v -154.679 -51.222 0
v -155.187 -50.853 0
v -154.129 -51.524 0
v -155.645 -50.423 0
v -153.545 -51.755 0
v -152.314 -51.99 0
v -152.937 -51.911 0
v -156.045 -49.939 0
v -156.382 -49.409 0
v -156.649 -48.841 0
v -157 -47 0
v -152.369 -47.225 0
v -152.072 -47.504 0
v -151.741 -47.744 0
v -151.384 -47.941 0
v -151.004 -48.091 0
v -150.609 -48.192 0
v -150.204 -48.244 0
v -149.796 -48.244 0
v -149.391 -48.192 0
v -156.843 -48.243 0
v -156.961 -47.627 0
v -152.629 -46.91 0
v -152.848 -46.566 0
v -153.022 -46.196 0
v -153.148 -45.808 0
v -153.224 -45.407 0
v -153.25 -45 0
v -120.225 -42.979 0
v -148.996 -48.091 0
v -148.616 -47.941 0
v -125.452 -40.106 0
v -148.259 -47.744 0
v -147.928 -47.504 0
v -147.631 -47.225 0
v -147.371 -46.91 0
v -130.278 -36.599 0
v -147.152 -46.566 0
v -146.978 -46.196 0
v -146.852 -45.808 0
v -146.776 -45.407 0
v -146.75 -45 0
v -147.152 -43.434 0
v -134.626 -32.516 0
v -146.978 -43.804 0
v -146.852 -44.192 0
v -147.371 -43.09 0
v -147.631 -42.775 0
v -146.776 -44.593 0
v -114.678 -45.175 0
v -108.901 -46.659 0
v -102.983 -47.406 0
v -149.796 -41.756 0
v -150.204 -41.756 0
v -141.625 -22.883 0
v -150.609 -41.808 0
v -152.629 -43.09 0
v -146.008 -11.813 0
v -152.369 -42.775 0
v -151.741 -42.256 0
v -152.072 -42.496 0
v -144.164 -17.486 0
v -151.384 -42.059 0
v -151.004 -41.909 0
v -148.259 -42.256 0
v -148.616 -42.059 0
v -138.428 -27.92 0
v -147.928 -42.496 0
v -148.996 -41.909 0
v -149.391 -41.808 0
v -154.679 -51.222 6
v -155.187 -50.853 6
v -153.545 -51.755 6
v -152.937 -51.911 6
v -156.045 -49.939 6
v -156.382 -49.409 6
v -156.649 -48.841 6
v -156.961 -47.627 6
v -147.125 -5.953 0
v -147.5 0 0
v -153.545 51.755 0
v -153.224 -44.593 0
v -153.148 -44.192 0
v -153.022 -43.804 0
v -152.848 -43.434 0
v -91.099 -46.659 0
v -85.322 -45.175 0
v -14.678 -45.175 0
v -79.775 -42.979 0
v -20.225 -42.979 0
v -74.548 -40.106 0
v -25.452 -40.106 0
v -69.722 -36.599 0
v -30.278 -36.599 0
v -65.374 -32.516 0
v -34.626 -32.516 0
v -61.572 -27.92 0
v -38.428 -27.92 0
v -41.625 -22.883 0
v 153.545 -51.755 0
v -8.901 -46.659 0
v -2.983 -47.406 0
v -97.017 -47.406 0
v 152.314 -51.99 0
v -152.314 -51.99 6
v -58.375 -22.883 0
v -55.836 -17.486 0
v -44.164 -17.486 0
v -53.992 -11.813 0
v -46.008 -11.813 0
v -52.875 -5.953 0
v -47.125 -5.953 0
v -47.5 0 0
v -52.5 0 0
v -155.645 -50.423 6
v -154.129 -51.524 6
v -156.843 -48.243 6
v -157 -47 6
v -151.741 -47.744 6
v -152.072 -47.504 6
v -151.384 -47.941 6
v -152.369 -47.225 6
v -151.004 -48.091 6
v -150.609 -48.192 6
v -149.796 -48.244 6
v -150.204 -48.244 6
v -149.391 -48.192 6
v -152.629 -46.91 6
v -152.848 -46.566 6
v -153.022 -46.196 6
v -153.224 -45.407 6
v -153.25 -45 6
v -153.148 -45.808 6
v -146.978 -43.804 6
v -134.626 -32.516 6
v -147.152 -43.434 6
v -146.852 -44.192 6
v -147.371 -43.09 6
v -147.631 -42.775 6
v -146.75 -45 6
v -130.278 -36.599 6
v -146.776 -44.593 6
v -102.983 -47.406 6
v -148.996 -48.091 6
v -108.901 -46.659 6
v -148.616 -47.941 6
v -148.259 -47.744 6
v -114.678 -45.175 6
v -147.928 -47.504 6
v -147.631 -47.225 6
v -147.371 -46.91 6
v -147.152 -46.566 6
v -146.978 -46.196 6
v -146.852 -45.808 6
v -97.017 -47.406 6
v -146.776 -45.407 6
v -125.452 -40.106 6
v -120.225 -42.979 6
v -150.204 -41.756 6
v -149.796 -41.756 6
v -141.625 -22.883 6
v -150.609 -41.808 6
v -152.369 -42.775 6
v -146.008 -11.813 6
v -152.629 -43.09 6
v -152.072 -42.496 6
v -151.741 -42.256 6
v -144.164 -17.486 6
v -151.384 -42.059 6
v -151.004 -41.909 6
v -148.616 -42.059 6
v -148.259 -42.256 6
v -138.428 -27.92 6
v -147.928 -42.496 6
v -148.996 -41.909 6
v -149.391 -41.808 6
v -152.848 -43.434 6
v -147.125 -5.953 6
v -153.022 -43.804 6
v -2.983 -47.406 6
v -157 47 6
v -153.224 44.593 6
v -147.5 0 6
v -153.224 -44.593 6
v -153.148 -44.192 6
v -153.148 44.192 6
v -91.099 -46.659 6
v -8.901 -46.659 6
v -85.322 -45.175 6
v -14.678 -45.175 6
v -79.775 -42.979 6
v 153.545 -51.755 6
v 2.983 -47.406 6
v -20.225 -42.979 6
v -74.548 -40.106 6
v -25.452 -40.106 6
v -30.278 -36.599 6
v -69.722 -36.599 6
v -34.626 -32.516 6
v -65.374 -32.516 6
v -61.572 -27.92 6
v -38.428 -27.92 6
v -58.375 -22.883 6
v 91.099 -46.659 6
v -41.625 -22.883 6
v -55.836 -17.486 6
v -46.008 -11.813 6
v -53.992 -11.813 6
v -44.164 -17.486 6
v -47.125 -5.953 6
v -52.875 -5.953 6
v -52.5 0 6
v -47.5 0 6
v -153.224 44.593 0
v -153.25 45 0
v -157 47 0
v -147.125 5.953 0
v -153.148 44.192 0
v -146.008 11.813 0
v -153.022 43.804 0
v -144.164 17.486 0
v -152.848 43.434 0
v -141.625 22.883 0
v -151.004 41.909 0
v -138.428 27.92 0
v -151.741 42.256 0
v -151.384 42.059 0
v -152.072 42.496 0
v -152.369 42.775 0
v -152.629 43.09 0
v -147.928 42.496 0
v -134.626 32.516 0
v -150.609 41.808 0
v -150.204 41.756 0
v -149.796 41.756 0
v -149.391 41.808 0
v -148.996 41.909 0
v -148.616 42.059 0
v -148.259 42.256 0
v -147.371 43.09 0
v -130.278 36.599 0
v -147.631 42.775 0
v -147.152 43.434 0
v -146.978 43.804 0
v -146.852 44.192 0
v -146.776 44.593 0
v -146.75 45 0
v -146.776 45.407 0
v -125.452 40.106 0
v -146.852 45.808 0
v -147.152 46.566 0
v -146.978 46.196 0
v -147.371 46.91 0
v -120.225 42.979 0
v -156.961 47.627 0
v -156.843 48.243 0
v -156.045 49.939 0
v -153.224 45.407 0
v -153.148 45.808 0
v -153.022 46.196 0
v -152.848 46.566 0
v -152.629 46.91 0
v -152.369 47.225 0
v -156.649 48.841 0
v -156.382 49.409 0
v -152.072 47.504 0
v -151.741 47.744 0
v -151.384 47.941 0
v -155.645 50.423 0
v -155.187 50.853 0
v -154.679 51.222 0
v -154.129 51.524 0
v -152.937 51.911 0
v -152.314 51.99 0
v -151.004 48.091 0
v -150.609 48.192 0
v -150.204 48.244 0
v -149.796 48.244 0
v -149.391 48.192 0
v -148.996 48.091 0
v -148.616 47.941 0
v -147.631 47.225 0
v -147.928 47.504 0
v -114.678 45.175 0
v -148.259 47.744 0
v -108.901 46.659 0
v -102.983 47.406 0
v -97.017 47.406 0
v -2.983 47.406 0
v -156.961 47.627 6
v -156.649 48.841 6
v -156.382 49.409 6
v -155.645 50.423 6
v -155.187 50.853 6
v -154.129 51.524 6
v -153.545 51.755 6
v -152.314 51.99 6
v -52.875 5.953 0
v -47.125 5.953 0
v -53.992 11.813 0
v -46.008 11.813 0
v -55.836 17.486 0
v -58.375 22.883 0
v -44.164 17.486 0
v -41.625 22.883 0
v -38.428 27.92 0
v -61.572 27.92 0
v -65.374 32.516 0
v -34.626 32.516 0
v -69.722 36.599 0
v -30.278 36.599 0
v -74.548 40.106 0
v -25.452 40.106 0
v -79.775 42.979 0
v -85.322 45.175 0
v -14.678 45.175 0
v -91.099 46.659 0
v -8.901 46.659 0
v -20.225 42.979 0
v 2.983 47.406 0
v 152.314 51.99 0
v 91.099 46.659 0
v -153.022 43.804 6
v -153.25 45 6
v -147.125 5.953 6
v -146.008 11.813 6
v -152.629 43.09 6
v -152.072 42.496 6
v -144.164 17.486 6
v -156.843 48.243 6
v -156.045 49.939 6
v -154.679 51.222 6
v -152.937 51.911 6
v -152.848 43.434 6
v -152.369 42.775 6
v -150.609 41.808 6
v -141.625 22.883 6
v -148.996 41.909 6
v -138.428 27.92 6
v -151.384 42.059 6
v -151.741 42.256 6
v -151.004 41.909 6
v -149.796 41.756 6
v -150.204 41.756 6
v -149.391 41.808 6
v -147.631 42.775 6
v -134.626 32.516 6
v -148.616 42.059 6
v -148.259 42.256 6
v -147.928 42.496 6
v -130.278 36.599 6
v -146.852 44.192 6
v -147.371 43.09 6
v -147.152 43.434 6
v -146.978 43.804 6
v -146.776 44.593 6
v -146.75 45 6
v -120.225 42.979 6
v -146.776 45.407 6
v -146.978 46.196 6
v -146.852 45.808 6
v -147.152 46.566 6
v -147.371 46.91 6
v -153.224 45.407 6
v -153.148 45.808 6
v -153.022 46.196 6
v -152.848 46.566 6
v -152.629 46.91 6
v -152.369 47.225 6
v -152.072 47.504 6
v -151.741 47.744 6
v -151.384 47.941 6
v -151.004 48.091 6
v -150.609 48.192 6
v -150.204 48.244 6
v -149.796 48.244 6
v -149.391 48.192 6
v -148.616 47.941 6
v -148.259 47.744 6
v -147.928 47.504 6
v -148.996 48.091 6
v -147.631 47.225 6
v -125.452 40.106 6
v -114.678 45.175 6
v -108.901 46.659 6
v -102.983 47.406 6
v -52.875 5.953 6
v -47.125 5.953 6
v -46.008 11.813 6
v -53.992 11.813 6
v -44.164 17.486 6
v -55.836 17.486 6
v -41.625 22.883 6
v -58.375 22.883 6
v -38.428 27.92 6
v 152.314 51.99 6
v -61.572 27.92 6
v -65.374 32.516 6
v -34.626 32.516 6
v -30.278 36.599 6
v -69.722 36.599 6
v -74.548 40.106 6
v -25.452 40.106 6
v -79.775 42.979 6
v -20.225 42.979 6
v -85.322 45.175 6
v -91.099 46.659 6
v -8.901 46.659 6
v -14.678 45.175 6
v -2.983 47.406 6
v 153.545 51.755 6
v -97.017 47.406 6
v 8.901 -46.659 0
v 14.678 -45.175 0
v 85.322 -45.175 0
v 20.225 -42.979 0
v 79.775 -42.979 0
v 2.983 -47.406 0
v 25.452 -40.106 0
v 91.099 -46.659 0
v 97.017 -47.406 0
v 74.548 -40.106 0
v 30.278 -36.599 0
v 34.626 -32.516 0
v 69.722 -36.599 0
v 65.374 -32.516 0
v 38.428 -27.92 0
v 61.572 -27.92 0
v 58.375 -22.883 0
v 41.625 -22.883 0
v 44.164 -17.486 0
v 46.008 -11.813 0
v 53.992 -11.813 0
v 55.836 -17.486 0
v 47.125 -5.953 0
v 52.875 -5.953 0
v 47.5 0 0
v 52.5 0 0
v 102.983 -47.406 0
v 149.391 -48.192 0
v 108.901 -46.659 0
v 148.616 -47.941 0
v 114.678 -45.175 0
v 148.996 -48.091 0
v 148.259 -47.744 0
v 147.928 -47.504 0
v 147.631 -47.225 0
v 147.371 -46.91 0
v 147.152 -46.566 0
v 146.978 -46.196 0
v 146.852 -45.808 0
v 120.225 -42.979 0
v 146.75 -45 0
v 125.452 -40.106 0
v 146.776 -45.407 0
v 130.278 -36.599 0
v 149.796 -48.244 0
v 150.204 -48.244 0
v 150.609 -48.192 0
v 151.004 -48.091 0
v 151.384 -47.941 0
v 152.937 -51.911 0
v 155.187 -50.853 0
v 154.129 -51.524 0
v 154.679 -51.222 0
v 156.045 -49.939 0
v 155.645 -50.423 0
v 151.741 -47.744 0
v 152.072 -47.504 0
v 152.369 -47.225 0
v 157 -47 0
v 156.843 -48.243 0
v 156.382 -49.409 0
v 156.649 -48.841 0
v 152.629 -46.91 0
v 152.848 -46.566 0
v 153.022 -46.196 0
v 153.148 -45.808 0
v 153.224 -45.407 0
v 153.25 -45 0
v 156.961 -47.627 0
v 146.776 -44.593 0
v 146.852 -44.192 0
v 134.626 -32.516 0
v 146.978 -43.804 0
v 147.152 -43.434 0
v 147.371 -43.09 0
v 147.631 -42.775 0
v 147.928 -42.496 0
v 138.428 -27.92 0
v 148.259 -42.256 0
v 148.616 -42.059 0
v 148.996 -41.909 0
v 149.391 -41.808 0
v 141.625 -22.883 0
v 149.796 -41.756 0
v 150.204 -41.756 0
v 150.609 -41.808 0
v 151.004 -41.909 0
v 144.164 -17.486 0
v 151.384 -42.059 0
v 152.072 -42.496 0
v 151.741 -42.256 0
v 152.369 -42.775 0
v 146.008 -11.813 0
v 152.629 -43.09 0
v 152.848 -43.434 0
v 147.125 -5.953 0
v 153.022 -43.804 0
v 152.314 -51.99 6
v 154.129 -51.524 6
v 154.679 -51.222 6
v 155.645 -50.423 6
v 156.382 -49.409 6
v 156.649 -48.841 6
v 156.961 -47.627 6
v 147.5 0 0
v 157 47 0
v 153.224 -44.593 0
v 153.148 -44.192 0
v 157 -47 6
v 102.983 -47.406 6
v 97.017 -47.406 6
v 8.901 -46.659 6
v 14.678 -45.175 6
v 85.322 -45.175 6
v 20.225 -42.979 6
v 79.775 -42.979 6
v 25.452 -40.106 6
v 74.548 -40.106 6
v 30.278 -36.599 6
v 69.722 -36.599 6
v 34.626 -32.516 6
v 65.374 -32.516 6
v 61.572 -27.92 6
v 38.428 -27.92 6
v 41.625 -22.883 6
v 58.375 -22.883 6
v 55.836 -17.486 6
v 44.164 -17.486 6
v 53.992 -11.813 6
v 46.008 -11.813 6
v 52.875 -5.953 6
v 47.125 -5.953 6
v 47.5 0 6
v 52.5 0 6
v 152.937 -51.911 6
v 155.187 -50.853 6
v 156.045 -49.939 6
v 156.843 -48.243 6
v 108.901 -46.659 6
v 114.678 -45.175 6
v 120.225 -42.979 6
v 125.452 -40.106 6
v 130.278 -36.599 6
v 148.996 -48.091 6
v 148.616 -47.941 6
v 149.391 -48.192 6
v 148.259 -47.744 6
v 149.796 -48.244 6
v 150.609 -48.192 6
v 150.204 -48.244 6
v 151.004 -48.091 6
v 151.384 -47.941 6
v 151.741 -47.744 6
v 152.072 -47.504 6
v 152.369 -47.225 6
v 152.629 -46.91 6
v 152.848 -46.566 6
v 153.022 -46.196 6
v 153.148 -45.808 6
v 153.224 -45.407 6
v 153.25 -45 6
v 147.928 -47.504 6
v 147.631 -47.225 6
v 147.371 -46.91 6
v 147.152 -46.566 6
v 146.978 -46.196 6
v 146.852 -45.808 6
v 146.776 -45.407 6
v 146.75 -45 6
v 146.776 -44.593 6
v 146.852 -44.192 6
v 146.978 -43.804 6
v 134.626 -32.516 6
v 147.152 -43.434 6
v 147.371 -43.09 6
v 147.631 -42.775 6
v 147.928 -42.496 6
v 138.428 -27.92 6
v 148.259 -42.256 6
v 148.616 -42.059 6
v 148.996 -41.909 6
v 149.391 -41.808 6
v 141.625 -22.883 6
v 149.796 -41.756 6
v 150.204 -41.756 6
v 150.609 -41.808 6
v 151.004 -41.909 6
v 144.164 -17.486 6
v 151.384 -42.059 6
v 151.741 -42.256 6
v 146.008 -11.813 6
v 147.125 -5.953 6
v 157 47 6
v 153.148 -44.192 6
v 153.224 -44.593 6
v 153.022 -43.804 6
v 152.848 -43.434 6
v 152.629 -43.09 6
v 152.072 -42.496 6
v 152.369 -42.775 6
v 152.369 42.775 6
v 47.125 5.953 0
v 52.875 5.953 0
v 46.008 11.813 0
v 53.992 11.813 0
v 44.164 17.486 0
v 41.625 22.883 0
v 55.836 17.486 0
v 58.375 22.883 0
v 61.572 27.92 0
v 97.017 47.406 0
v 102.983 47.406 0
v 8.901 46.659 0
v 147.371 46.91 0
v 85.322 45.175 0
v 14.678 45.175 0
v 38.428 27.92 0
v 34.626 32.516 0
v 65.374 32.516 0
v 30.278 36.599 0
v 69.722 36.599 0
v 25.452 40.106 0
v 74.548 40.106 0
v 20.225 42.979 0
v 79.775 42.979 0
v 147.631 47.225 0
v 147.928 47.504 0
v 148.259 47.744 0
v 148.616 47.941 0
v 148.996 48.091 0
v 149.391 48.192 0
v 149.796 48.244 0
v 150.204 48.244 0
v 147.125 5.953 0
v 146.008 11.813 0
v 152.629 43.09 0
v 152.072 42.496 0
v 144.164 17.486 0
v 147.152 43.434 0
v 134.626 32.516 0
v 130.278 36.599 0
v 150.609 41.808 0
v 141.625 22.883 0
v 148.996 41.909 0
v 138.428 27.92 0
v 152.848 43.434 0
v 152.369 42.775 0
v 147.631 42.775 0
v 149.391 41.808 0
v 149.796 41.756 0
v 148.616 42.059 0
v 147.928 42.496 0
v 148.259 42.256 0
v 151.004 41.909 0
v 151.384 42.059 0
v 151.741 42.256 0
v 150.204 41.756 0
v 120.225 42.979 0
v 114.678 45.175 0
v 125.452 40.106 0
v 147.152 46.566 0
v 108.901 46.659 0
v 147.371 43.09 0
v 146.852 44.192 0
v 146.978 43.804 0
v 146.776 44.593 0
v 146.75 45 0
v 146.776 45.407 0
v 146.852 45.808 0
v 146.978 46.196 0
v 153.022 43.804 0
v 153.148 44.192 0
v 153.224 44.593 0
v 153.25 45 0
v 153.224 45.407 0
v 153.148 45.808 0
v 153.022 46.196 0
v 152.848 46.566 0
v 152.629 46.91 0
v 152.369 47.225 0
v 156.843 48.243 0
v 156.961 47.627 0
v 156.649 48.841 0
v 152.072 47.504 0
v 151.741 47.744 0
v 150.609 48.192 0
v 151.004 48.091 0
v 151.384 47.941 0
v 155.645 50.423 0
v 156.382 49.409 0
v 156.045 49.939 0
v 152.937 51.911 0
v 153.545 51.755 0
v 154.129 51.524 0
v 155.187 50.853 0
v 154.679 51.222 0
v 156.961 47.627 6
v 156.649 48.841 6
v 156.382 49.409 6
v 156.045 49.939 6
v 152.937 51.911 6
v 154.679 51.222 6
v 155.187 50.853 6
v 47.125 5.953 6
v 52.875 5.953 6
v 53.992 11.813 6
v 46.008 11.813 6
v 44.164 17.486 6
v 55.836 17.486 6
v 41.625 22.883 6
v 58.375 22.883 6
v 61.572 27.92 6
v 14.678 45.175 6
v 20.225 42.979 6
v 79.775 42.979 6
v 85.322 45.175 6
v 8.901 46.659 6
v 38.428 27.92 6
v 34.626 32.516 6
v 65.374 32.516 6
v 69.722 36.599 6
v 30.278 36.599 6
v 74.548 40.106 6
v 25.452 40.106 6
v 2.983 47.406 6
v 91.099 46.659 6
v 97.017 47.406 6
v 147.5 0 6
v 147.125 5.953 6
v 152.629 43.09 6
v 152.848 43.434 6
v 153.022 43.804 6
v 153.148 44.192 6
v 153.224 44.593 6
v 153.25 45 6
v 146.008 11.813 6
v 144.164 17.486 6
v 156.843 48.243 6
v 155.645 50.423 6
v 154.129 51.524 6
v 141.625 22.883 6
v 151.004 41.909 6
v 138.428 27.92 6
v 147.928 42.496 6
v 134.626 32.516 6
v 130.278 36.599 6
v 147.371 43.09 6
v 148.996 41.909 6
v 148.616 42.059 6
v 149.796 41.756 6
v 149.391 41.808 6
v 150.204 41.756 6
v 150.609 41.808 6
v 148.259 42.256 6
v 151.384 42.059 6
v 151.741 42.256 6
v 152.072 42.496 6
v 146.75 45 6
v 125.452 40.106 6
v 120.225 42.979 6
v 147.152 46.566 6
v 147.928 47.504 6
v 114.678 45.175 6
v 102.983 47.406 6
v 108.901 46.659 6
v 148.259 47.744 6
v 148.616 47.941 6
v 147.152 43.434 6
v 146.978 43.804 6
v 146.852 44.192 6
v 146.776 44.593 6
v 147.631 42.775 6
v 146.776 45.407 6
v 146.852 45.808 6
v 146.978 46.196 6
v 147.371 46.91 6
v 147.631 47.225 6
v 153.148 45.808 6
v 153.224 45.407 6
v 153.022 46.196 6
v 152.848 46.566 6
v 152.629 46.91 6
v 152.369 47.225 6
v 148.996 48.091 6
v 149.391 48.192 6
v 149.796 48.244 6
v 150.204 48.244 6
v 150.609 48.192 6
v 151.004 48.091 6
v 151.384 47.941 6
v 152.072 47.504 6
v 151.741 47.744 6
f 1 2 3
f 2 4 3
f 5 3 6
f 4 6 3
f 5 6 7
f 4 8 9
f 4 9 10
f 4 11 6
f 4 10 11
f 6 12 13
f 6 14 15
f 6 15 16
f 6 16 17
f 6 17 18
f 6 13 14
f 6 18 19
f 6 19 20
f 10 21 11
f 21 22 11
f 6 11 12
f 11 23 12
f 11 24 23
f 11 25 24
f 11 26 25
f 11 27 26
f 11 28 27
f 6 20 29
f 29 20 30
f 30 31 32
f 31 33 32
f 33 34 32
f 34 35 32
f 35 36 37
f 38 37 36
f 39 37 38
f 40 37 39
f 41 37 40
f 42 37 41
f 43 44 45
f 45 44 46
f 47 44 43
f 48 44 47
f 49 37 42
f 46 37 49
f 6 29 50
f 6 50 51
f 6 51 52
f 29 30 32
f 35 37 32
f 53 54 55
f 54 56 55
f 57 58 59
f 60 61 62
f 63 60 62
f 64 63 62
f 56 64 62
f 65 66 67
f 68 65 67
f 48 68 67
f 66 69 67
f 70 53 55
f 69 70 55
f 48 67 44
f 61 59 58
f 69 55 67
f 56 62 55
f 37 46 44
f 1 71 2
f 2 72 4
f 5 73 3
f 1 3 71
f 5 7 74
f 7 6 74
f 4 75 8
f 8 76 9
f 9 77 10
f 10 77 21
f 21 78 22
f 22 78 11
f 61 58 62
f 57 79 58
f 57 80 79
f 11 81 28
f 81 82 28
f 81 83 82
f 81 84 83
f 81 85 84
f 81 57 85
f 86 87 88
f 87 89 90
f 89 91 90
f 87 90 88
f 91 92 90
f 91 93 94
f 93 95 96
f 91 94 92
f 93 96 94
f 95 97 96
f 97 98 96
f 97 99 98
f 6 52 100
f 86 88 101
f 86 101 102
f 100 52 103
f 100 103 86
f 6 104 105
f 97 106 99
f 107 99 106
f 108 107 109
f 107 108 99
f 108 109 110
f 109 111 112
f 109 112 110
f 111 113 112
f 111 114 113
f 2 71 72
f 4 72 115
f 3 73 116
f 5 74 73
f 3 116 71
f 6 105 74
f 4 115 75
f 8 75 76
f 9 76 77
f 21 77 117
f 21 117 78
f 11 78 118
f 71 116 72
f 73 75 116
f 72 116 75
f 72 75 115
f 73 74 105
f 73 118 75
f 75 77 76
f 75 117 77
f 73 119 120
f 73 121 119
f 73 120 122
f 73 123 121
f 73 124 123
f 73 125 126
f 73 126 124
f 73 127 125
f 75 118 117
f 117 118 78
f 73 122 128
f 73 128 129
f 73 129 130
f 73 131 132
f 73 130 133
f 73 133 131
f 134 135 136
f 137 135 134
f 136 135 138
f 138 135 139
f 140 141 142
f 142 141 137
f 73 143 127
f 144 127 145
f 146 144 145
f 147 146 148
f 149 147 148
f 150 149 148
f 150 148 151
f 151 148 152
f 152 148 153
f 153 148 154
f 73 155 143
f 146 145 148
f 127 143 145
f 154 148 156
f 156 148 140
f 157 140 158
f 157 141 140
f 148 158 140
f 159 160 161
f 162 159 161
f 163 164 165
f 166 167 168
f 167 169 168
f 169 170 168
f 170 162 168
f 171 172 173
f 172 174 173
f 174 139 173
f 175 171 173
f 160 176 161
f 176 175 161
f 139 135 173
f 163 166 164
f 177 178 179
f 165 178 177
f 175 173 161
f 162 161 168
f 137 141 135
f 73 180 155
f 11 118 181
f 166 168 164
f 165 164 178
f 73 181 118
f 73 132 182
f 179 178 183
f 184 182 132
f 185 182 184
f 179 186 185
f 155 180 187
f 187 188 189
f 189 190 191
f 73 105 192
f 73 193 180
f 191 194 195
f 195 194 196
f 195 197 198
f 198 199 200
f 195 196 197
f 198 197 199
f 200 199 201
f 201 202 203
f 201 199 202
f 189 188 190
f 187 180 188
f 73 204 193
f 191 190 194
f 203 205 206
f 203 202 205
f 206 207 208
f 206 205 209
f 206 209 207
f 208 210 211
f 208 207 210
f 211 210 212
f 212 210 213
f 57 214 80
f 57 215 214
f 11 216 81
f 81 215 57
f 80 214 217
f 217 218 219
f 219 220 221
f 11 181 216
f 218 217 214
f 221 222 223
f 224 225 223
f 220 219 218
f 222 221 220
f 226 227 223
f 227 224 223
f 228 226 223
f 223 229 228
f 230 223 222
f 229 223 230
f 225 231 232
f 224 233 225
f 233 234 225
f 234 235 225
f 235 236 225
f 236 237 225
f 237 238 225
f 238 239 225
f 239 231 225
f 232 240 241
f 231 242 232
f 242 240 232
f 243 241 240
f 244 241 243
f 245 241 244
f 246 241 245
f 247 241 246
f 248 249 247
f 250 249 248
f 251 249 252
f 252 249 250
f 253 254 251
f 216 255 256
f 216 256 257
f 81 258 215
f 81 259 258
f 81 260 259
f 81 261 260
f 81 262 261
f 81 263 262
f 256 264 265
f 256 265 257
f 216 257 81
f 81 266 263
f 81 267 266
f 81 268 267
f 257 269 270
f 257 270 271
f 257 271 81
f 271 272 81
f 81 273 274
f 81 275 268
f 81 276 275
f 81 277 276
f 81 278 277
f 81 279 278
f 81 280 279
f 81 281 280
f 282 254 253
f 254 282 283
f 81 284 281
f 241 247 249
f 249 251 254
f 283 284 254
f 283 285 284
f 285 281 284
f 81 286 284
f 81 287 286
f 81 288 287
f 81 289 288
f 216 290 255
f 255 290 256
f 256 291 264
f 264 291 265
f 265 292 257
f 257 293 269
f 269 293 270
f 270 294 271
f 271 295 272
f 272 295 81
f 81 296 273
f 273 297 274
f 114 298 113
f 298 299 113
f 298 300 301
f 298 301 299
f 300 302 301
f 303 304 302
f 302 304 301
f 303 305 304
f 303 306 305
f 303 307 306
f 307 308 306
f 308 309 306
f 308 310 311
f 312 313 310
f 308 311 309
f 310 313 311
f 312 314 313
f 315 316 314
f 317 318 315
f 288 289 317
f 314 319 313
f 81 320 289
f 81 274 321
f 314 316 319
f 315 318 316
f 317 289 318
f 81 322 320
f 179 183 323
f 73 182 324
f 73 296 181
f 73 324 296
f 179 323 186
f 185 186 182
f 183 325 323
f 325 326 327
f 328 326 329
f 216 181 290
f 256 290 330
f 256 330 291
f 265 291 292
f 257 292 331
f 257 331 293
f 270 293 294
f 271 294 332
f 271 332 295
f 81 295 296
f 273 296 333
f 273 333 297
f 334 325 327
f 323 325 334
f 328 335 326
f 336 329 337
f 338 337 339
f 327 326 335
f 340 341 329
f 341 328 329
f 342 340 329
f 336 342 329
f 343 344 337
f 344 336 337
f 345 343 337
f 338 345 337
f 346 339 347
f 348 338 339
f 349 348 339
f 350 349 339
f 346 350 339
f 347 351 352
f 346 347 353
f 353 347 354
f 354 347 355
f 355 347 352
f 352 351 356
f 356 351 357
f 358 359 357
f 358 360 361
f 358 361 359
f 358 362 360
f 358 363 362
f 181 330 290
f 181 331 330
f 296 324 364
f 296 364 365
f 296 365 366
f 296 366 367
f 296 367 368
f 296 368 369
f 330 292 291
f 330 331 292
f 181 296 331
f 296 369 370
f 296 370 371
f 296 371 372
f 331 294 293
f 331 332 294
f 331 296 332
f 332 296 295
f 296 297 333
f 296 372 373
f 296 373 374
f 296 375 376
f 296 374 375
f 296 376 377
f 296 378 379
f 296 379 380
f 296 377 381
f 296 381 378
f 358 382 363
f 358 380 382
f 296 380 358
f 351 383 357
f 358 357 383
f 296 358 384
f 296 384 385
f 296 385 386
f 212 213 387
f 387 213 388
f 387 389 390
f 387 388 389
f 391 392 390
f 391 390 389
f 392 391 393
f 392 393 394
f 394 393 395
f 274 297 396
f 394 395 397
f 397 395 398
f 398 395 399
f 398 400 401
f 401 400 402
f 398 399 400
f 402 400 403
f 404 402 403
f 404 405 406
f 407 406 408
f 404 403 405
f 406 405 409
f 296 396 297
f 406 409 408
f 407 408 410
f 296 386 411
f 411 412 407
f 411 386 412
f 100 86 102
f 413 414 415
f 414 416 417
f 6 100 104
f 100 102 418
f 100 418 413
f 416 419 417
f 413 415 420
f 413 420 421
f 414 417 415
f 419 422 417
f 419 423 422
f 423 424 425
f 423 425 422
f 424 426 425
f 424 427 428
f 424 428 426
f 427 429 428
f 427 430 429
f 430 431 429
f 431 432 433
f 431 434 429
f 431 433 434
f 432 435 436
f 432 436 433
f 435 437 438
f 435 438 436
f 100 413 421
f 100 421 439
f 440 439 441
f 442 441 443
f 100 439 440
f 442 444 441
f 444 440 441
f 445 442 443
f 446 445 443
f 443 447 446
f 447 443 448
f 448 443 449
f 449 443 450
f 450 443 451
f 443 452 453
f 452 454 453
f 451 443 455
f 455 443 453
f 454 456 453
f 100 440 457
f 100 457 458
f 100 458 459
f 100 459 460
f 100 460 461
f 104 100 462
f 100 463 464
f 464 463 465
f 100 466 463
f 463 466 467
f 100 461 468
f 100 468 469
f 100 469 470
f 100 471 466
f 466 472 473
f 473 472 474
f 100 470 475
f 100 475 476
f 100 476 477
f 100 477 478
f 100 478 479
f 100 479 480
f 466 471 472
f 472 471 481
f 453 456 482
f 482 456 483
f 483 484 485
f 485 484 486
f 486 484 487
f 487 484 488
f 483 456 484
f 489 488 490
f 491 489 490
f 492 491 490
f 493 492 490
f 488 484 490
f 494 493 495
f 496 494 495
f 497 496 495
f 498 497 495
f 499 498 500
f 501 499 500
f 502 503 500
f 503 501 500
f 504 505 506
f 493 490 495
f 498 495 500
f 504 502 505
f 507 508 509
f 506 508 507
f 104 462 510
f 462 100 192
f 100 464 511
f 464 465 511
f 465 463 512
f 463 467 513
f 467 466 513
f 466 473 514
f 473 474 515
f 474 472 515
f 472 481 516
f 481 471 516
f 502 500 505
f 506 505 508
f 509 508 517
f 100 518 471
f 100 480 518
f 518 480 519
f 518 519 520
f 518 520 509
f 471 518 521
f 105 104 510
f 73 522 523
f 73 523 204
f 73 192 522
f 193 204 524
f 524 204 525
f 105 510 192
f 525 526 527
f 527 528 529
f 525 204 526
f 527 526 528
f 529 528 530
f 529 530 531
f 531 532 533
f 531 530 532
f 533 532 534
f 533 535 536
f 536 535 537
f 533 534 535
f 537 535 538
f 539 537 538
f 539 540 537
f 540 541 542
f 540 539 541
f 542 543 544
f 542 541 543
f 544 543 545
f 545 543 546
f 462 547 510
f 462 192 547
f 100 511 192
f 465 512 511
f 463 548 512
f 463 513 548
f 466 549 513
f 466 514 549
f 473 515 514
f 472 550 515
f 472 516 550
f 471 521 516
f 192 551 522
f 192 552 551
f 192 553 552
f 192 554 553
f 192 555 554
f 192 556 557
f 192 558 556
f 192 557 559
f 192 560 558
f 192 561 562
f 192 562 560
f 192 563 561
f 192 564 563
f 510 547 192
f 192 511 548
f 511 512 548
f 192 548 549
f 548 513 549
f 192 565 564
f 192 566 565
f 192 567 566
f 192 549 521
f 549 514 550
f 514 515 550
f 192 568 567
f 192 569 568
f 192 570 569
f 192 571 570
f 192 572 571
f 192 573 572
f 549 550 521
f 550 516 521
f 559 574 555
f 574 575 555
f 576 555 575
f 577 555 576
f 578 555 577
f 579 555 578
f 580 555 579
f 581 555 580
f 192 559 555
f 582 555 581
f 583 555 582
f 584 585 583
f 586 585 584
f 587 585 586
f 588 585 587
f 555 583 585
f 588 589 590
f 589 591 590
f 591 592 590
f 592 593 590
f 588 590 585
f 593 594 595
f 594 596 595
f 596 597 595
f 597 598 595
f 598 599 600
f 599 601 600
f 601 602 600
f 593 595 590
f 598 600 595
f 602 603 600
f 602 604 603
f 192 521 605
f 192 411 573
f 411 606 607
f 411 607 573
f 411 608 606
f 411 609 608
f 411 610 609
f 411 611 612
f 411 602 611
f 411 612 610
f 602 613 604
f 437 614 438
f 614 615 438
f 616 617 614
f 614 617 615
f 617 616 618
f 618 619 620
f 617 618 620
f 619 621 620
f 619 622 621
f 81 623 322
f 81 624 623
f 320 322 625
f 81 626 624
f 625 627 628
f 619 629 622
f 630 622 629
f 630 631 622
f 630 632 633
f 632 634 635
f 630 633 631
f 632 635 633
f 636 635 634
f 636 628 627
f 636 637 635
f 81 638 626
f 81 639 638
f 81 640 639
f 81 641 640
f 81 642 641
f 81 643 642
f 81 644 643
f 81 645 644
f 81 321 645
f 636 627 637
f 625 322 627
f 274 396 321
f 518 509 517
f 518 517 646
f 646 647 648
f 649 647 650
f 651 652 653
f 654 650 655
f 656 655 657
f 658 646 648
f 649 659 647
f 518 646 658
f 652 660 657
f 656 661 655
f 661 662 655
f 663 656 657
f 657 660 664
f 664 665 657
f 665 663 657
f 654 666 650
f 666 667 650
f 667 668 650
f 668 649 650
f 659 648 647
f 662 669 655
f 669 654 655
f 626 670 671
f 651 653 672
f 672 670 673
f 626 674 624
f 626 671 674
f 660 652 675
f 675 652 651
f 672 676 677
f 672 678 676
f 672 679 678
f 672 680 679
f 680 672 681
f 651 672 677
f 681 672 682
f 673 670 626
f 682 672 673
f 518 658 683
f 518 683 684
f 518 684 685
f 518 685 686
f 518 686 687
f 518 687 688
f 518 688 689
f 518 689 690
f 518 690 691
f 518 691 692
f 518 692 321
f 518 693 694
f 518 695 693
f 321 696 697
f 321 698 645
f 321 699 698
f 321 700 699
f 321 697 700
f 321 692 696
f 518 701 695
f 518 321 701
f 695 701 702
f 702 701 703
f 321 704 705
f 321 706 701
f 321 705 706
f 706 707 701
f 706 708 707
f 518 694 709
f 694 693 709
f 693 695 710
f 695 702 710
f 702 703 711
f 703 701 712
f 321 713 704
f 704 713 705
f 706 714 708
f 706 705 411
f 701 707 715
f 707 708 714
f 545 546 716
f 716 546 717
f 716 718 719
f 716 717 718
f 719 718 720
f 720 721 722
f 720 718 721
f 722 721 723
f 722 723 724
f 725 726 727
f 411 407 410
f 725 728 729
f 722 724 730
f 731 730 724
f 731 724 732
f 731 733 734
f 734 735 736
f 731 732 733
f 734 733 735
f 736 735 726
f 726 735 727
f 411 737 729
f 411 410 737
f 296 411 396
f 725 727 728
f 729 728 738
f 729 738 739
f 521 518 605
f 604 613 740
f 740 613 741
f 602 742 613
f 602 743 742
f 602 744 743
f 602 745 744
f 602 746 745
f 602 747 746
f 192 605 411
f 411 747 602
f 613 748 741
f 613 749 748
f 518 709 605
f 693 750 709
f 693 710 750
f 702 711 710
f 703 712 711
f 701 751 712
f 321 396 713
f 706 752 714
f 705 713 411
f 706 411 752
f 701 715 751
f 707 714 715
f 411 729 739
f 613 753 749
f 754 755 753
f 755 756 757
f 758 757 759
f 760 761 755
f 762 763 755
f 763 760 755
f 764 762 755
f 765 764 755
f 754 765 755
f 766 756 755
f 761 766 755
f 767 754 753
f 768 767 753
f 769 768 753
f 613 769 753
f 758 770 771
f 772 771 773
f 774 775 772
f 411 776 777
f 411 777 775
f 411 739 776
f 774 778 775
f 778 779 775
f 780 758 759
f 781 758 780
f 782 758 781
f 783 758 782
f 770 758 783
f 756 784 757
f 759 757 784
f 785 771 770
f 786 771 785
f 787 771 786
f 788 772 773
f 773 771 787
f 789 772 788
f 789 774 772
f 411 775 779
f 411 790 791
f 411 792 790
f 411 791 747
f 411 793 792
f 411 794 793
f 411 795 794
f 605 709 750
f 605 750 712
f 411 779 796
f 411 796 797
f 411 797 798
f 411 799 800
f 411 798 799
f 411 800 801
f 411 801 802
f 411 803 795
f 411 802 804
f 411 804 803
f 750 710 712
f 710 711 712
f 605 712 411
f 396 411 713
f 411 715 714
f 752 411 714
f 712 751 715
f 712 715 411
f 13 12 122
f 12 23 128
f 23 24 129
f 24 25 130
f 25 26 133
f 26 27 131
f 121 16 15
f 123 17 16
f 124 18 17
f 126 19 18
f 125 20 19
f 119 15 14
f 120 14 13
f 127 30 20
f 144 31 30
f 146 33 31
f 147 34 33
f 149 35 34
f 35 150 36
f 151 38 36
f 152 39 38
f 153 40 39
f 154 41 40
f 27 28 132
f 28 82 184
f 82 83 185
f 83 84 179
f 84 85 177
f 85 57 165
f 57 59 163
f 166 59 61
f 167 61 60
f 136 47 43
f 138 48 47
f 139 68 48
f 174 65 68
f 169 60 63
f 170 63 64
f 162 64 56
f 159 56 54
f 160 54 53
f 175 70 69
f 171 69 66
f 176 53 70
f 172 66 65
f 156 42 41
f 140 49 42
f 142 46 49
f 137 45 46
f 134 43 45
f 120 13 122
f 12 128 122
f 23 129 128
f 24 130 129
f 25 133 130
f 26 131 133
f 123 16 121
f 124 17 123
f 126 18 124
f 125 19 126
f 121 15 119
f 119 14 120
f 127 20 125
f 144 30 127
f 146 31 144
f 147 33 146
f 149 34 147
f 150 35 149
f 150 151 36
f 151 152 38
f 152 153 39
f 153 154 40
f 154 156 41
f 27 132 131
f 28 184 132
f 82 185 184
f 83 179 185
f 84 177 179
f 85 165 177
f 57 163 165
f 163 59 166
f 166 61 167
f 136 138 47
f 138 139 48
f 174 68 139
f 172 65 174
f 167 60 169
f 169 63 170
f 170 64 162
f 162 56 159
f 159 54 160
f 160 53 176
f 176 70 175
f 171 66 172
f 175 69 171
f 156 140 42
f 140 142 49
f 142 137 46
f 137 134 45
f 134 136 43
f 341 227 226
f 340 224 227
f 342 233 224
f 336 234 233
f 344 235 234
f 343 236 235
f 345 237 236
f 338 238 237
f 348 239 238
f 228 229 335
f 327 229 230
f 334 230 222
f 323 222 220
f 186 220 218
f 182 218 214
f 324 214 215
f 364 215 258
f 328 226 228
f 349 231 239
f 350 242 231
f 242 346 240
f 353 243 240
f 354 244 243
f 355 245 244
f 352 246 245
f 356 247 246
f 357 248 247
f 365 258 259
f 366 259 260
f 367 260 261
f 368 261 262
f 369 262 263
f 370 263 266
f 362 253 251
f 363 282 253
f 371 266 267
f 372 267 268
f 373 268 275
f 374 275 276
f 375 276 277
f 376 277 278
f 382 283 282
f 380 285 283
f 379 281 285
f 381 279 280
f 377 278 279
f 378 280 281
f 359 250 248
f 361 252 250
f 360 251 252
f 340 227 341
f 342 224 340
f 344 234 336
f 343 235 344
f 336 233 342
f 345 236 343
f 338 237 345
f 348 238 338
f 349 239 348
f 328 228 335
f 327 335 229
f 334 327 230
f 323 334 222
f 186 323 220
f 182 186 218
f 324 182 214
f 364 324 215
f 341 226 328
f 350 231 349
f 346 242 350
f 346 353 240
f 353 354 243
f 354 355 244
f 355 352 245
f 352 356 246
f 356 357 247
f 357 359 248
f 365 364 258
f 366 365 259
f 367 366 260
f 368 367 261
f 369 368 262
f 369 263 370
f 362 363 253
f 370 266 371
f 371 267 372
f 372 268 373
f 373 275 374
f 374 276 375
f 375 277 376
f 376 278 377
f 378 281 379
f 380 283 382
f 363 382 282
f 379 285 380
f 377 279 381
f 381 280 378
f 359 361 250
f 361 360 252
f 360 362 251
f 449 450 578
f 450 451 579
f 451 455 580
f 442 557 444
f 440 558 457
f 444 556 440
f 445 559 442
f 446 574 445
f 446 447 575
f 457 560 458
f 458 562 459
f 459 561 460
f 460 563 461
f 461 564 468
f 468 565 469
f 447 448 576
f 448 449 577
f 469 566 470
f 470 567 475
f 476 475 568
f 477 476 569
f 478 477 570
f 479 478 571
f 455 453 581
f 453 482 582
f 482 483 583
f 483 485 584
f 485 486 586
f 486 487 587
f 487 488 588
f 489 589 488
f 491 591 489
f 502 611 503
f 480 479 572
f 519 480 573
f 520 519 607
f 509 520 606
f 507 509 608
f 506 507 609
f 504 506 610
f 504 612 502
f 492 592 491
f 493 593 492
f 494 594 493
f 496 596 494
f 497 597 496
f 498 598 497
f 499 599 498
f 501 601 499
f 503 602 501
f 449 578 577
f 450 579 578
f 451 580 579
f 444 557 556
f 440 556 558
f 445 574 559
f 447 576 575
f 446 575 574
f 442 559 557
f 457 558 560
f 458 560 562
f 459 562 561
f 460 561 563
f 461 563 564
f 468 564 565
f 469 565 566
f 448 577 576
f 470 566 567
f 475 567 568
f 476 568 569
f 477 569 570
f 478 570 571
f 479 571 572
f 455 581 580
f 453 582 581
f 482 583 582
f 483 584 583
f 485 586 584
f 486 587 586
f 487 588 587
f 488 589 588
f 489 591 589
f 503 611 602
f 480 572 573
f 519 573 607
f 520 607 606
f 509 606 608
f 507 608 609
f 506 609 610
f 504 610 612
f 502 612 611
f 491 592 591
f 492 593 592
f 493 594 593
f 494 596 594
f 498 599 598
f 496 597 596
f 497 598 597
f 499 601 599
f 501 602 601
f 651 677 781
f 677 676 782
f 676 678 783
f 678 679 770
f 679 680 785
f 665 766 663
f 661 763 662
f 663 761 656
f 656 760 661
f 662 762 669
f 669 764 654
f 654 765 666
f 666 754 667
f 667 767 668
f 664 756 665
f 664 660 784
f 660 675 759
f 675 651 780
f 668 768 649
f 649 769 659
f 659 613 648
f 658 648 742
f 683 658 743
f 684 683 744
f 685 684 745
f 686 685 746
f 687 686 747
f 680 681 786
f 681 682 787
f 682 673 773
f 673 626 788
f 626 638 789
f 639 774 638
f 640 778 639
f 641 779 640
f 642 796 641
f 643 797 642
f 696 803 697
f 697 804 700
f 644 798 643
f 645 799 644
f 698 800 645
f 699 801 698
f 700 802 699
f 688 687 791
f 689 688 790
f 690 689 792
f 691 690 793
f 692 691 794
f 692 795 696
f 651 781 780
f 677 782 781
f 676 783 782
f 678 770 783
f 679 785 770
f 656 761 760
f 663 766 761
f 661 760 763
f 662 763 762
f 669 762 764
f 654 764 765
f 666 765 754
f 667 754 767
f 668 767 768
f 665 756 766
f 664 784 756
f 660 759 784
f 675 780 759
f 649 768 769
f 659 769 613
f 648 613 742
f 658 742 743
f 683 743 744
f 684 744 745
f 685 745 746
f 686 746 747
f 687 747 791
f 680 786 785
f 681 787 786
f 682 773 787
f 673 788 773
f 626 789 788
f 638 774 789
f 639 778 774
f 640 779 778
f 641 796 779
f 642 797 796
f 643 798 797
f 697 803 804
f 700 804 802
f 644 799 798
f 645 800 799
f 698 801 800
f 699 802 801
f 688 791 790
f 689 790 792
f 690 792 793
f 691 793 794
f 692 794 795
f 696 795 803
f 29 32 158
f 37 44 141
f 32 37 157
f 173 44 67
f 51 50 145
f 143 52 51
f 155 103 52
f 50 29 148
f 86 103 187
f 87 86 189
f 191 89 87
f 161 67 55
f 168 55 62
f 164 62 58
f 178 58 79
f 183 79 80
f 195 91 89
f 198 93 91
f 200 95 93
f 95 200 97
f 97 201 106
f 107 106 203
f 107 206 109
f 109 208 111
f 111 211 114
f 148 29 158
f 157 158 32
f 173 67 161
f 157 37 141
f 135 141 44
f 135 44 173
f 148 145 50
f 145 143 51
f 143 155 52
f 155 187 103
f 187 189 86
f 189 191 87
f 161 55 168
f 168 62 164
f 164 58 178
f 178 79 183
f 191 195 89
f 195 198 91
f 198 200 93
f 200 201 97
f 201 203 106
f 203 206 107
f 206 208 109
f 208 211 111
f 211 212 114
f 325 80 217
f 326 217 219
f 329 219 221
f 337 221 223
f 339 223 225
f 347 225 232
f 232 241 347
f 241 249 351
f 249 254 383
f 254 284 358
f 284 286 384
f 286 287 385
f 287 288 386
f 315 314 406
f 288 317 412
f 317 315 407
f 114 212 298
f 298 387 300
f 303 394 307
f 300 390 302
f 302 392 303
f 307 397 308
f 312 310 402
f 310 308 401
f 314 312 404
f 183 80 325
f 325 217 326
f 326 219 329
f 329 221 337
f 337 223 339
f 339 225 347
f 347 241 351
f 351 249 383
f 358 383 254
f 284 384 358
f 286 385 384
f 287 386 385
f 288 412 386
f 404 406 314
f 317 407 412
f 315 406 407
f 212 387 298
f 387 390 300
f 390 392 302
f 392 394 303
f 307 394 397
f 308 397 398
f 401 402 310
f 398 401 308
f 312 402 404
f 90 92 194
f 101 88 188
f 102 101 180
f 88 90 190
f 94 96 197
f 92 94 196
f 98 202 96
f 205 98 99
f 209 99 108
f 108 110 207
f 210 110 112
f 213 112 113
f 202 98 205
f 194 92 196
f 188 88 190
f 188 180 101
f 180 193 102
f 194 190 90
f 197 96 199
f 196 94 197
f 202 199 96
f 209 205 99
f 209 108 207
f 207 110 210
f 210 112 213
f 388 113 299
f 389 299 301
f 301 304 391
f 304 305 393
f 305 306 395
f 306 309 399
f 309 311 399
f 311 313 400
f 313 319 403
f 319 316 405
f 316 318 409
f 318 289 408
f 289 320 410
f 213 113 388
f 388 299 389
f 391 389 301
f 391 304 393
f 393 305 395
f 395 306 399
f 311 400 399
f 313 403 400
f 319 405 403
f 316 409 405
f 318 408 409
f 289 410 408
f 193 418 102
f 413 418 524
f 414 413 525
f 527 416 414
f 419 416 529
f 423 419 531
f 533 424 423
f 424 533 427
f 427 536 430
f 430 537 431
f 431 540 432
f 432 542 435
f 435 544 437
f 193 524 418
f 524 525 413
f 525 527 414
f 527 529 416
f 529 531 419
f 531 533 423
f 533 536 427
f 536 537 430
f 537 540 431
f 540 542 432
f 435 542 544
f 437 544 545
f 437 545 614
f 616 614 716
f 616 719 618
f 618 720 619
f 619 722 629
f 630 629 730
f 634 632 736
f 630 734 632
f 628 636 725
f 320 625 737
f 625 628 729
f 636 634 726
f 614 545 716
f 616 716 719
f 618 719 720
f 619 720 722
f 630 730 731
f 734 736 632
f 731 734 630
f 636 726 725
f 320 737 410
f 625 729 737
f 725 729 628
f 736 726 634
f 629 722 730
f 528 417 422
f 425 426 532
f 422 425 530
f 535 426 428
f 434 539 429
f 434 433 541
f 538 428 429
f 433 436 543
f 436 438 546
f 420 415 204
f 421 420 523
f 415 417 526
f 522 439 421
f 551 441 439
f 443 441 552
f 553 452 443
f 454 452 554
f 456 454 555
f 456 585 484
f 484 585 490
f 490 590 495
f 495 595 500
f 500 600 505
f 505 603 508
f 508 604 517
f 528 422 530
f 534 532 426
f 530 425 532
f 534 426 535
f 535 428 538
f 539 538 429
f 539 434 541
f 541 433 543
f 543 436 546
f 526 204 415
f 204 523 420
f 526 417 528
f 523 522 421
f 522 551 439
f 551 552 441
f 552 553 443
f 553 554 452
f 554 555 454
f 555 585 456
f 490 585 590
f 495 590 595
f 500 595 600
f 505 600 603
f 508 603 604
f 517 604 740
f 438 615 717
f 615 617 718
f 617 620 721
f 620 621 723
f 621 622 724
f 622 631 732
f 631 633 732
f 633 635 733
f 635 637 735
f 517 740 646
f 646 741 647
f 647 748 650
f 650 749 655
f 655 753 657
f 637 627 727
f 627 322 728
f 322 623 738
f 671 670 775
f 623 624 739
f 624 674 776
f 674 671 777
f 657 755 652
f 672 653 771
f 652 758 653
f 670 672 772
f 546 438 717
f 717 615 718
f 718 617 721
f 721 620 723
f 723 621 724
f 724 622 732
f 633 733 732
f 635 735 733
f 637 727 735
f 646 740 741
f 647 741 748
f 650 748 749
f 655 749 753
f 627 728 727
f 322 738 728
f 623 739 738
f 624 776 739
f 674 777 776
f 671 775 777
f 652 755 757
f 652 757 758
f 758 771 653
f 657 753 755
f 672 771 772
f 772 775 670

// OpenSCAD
$fn = 50;

difference() {
	union() {
		hull() {
			translate(v = [-152.0, 47.0, 0]) {
				cylinder(h = 6, r = 5);
			}
			translate(v = [152.0, 47.0, 0]) {
				cylinder(h = 6, r = 5);
			}
			translate(v = [-152.0, -47.0, 0]) {
				cylinder(h = 6, r = 5);
			}
			translate(v = [152.0, -47.0, 0]) {
				cylinder(h = 6, r = 5);
			}
		}
	}
	union() {
		translate(v = [-150.0, -45.0, -100.0]) {
			cylinder(h = 200, r = 3.25);
		}
		translate(v = [-150.0, 45.0, -100.0]) {
			cylinder(h = 200, r = 3.25);
		}
		translate(v = [150.0, -45.0, -100.0]) {
			cylinder(h = 200, r = 3.25);
		}
		translate(v = [150.0, 45.0, -100.0]) {
			cylinder(h = 200, r = 3.25);
		}
		translate(v = [-150.0, -45.0, -100.0]) {
			cylinder(h = 200, r = 1.8);
		}
		translate(v = [-150.0, 45.0, -100.0]) {
			cylinder(h = 200, r = 1.8);
		}
		translate(v = [150.0, -45.0, -100.0]) {
			cylinder(h = 200, r = 1.8);
		}
		translate(v = [150.0, 45.0, -100.0]) {
			cylinder(h = 200, r = 1.8);
		}
		translate(v = [-100.0, 0, 0.0]) {
			cylinder(h = 6, r = 47.5);
		}
		cylinder(h = 6, r = 47.5);
		translate(v = [100.0, 0, 0.0]) {
			cylinder(h = 6, r = 47.5);
		}
	}
}
